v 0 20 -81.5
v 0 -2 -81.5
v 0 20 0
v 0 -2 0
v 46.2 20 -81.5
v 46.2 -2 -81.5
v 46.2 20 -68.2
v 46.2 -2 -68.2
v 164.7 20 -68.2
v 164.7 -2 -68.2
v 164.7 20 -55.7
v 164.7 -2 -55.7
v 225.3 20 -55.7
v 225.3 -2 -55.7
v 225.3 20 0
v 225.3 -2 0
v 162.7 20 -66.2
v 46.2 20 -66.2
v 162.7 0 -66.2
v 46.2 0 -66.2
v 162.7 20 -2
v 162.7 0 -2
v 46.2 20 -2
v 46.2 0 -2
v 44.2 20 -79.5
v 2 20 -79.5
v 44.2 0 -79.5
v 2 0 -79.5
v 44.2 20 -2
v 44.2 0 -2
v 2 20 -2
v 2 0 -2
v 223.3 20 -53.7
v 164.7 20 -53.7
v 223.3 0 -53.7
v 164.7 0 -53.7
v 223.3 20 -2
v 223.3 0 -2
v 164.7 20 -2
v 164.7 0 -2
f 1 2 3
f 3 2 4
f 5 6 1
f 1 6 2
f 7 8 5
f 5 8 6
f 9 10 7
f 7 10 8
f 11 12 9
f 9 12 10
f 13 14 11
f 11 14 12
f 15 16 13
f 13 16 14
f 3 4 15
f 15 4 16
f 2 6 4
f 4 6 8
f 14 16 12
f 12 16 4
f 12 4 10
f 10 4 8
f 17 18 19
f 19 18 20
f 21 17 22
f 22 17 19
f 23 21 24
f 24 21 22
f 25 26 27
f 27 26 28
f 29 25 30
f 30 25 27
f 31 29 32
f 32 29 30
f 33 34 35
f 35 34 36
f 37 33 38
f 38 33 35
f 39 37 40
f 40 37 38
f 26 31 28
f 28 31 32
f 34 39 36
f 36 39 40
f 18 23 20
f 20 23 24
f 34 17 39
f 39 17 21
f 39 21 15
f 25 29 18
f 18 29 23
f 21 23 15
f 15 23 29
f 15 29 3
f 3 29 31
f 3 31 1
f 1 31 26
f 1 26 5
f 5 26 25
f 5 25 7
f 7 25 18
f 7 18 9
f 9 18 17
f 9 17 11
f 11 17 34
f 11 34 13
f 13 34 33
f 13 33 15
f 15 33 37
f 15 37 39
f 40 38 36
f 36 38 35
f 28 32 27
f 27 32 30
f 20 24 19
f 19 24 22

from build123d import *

# Parameters (mm, degrees)
BOSS_EXTRUDE1_DEPTH = 2
SKETCH1_4_W         = 58.6
SKETCH1_4_H         = 51.7
BOSS_EXTRUDE2_DEPTH = 20


with BuildPart() as part:
    # Sketch1 → Boss-Extrude1 (new body)
    with BuildSketch(Plane(origin=(0, 0, 0), x_dir=(1, 0, 0), z_dir=(0, 1, 0))):
        Polygon((0, 0), (223.3, 0), (225.3, 0), (225.3, 55.7), (164.7, 55.7), (164.7, 68.2), (46.2, 68.2), (46.2, 81.5), (0, 81.5), align=None)
    extrude(amount=-BOSS_EXTRUDE1_DEPTH)

    # Sketch1<4> → Boss-Extrude2 (add)
    with BuildSketch(Plane(origin=(0, 0, 0), x_dir=(1, 0, 0), z_dir=(0, 1, 0))):
        Polygon((0, 2), (0, 0), (2, 0), (44.2, 0), (46.2, 0), (162.7, 0), (164.7, 0), (223.3, 0), (225.3, 0), (225.3, 2), (225.3, 55.7), (164.7, 55.7), (164.7, 68.2), (46.2, 68.2), (46.2, 81.5), (2, 81.5), (0, 81.5), (0, 79.5), align=None)
        Polygon((162.7, 2), (46.2, 2), (46.2, 66.2), (162.7, 66.2), (162.7, 55.7), (162.7, 53.7), align=None, mode=Mode.SUBTRACT)
        with Locations((194, 27.85)):
            Rectangle(SKETCH1_4_W, SKETCH1_4_H, mode=Mode.SUBTRACT)
        Polygon((2, 2), (2, 79.5), (44.2, 79.5), (44.2, 68.2), (44.2, 66.2), (44.2, 2), align=None, mode=Mode.SUBTRACT)
    extrude(amount=BOSS_EXTRUDE2_DEPTH)


solid = part.part
